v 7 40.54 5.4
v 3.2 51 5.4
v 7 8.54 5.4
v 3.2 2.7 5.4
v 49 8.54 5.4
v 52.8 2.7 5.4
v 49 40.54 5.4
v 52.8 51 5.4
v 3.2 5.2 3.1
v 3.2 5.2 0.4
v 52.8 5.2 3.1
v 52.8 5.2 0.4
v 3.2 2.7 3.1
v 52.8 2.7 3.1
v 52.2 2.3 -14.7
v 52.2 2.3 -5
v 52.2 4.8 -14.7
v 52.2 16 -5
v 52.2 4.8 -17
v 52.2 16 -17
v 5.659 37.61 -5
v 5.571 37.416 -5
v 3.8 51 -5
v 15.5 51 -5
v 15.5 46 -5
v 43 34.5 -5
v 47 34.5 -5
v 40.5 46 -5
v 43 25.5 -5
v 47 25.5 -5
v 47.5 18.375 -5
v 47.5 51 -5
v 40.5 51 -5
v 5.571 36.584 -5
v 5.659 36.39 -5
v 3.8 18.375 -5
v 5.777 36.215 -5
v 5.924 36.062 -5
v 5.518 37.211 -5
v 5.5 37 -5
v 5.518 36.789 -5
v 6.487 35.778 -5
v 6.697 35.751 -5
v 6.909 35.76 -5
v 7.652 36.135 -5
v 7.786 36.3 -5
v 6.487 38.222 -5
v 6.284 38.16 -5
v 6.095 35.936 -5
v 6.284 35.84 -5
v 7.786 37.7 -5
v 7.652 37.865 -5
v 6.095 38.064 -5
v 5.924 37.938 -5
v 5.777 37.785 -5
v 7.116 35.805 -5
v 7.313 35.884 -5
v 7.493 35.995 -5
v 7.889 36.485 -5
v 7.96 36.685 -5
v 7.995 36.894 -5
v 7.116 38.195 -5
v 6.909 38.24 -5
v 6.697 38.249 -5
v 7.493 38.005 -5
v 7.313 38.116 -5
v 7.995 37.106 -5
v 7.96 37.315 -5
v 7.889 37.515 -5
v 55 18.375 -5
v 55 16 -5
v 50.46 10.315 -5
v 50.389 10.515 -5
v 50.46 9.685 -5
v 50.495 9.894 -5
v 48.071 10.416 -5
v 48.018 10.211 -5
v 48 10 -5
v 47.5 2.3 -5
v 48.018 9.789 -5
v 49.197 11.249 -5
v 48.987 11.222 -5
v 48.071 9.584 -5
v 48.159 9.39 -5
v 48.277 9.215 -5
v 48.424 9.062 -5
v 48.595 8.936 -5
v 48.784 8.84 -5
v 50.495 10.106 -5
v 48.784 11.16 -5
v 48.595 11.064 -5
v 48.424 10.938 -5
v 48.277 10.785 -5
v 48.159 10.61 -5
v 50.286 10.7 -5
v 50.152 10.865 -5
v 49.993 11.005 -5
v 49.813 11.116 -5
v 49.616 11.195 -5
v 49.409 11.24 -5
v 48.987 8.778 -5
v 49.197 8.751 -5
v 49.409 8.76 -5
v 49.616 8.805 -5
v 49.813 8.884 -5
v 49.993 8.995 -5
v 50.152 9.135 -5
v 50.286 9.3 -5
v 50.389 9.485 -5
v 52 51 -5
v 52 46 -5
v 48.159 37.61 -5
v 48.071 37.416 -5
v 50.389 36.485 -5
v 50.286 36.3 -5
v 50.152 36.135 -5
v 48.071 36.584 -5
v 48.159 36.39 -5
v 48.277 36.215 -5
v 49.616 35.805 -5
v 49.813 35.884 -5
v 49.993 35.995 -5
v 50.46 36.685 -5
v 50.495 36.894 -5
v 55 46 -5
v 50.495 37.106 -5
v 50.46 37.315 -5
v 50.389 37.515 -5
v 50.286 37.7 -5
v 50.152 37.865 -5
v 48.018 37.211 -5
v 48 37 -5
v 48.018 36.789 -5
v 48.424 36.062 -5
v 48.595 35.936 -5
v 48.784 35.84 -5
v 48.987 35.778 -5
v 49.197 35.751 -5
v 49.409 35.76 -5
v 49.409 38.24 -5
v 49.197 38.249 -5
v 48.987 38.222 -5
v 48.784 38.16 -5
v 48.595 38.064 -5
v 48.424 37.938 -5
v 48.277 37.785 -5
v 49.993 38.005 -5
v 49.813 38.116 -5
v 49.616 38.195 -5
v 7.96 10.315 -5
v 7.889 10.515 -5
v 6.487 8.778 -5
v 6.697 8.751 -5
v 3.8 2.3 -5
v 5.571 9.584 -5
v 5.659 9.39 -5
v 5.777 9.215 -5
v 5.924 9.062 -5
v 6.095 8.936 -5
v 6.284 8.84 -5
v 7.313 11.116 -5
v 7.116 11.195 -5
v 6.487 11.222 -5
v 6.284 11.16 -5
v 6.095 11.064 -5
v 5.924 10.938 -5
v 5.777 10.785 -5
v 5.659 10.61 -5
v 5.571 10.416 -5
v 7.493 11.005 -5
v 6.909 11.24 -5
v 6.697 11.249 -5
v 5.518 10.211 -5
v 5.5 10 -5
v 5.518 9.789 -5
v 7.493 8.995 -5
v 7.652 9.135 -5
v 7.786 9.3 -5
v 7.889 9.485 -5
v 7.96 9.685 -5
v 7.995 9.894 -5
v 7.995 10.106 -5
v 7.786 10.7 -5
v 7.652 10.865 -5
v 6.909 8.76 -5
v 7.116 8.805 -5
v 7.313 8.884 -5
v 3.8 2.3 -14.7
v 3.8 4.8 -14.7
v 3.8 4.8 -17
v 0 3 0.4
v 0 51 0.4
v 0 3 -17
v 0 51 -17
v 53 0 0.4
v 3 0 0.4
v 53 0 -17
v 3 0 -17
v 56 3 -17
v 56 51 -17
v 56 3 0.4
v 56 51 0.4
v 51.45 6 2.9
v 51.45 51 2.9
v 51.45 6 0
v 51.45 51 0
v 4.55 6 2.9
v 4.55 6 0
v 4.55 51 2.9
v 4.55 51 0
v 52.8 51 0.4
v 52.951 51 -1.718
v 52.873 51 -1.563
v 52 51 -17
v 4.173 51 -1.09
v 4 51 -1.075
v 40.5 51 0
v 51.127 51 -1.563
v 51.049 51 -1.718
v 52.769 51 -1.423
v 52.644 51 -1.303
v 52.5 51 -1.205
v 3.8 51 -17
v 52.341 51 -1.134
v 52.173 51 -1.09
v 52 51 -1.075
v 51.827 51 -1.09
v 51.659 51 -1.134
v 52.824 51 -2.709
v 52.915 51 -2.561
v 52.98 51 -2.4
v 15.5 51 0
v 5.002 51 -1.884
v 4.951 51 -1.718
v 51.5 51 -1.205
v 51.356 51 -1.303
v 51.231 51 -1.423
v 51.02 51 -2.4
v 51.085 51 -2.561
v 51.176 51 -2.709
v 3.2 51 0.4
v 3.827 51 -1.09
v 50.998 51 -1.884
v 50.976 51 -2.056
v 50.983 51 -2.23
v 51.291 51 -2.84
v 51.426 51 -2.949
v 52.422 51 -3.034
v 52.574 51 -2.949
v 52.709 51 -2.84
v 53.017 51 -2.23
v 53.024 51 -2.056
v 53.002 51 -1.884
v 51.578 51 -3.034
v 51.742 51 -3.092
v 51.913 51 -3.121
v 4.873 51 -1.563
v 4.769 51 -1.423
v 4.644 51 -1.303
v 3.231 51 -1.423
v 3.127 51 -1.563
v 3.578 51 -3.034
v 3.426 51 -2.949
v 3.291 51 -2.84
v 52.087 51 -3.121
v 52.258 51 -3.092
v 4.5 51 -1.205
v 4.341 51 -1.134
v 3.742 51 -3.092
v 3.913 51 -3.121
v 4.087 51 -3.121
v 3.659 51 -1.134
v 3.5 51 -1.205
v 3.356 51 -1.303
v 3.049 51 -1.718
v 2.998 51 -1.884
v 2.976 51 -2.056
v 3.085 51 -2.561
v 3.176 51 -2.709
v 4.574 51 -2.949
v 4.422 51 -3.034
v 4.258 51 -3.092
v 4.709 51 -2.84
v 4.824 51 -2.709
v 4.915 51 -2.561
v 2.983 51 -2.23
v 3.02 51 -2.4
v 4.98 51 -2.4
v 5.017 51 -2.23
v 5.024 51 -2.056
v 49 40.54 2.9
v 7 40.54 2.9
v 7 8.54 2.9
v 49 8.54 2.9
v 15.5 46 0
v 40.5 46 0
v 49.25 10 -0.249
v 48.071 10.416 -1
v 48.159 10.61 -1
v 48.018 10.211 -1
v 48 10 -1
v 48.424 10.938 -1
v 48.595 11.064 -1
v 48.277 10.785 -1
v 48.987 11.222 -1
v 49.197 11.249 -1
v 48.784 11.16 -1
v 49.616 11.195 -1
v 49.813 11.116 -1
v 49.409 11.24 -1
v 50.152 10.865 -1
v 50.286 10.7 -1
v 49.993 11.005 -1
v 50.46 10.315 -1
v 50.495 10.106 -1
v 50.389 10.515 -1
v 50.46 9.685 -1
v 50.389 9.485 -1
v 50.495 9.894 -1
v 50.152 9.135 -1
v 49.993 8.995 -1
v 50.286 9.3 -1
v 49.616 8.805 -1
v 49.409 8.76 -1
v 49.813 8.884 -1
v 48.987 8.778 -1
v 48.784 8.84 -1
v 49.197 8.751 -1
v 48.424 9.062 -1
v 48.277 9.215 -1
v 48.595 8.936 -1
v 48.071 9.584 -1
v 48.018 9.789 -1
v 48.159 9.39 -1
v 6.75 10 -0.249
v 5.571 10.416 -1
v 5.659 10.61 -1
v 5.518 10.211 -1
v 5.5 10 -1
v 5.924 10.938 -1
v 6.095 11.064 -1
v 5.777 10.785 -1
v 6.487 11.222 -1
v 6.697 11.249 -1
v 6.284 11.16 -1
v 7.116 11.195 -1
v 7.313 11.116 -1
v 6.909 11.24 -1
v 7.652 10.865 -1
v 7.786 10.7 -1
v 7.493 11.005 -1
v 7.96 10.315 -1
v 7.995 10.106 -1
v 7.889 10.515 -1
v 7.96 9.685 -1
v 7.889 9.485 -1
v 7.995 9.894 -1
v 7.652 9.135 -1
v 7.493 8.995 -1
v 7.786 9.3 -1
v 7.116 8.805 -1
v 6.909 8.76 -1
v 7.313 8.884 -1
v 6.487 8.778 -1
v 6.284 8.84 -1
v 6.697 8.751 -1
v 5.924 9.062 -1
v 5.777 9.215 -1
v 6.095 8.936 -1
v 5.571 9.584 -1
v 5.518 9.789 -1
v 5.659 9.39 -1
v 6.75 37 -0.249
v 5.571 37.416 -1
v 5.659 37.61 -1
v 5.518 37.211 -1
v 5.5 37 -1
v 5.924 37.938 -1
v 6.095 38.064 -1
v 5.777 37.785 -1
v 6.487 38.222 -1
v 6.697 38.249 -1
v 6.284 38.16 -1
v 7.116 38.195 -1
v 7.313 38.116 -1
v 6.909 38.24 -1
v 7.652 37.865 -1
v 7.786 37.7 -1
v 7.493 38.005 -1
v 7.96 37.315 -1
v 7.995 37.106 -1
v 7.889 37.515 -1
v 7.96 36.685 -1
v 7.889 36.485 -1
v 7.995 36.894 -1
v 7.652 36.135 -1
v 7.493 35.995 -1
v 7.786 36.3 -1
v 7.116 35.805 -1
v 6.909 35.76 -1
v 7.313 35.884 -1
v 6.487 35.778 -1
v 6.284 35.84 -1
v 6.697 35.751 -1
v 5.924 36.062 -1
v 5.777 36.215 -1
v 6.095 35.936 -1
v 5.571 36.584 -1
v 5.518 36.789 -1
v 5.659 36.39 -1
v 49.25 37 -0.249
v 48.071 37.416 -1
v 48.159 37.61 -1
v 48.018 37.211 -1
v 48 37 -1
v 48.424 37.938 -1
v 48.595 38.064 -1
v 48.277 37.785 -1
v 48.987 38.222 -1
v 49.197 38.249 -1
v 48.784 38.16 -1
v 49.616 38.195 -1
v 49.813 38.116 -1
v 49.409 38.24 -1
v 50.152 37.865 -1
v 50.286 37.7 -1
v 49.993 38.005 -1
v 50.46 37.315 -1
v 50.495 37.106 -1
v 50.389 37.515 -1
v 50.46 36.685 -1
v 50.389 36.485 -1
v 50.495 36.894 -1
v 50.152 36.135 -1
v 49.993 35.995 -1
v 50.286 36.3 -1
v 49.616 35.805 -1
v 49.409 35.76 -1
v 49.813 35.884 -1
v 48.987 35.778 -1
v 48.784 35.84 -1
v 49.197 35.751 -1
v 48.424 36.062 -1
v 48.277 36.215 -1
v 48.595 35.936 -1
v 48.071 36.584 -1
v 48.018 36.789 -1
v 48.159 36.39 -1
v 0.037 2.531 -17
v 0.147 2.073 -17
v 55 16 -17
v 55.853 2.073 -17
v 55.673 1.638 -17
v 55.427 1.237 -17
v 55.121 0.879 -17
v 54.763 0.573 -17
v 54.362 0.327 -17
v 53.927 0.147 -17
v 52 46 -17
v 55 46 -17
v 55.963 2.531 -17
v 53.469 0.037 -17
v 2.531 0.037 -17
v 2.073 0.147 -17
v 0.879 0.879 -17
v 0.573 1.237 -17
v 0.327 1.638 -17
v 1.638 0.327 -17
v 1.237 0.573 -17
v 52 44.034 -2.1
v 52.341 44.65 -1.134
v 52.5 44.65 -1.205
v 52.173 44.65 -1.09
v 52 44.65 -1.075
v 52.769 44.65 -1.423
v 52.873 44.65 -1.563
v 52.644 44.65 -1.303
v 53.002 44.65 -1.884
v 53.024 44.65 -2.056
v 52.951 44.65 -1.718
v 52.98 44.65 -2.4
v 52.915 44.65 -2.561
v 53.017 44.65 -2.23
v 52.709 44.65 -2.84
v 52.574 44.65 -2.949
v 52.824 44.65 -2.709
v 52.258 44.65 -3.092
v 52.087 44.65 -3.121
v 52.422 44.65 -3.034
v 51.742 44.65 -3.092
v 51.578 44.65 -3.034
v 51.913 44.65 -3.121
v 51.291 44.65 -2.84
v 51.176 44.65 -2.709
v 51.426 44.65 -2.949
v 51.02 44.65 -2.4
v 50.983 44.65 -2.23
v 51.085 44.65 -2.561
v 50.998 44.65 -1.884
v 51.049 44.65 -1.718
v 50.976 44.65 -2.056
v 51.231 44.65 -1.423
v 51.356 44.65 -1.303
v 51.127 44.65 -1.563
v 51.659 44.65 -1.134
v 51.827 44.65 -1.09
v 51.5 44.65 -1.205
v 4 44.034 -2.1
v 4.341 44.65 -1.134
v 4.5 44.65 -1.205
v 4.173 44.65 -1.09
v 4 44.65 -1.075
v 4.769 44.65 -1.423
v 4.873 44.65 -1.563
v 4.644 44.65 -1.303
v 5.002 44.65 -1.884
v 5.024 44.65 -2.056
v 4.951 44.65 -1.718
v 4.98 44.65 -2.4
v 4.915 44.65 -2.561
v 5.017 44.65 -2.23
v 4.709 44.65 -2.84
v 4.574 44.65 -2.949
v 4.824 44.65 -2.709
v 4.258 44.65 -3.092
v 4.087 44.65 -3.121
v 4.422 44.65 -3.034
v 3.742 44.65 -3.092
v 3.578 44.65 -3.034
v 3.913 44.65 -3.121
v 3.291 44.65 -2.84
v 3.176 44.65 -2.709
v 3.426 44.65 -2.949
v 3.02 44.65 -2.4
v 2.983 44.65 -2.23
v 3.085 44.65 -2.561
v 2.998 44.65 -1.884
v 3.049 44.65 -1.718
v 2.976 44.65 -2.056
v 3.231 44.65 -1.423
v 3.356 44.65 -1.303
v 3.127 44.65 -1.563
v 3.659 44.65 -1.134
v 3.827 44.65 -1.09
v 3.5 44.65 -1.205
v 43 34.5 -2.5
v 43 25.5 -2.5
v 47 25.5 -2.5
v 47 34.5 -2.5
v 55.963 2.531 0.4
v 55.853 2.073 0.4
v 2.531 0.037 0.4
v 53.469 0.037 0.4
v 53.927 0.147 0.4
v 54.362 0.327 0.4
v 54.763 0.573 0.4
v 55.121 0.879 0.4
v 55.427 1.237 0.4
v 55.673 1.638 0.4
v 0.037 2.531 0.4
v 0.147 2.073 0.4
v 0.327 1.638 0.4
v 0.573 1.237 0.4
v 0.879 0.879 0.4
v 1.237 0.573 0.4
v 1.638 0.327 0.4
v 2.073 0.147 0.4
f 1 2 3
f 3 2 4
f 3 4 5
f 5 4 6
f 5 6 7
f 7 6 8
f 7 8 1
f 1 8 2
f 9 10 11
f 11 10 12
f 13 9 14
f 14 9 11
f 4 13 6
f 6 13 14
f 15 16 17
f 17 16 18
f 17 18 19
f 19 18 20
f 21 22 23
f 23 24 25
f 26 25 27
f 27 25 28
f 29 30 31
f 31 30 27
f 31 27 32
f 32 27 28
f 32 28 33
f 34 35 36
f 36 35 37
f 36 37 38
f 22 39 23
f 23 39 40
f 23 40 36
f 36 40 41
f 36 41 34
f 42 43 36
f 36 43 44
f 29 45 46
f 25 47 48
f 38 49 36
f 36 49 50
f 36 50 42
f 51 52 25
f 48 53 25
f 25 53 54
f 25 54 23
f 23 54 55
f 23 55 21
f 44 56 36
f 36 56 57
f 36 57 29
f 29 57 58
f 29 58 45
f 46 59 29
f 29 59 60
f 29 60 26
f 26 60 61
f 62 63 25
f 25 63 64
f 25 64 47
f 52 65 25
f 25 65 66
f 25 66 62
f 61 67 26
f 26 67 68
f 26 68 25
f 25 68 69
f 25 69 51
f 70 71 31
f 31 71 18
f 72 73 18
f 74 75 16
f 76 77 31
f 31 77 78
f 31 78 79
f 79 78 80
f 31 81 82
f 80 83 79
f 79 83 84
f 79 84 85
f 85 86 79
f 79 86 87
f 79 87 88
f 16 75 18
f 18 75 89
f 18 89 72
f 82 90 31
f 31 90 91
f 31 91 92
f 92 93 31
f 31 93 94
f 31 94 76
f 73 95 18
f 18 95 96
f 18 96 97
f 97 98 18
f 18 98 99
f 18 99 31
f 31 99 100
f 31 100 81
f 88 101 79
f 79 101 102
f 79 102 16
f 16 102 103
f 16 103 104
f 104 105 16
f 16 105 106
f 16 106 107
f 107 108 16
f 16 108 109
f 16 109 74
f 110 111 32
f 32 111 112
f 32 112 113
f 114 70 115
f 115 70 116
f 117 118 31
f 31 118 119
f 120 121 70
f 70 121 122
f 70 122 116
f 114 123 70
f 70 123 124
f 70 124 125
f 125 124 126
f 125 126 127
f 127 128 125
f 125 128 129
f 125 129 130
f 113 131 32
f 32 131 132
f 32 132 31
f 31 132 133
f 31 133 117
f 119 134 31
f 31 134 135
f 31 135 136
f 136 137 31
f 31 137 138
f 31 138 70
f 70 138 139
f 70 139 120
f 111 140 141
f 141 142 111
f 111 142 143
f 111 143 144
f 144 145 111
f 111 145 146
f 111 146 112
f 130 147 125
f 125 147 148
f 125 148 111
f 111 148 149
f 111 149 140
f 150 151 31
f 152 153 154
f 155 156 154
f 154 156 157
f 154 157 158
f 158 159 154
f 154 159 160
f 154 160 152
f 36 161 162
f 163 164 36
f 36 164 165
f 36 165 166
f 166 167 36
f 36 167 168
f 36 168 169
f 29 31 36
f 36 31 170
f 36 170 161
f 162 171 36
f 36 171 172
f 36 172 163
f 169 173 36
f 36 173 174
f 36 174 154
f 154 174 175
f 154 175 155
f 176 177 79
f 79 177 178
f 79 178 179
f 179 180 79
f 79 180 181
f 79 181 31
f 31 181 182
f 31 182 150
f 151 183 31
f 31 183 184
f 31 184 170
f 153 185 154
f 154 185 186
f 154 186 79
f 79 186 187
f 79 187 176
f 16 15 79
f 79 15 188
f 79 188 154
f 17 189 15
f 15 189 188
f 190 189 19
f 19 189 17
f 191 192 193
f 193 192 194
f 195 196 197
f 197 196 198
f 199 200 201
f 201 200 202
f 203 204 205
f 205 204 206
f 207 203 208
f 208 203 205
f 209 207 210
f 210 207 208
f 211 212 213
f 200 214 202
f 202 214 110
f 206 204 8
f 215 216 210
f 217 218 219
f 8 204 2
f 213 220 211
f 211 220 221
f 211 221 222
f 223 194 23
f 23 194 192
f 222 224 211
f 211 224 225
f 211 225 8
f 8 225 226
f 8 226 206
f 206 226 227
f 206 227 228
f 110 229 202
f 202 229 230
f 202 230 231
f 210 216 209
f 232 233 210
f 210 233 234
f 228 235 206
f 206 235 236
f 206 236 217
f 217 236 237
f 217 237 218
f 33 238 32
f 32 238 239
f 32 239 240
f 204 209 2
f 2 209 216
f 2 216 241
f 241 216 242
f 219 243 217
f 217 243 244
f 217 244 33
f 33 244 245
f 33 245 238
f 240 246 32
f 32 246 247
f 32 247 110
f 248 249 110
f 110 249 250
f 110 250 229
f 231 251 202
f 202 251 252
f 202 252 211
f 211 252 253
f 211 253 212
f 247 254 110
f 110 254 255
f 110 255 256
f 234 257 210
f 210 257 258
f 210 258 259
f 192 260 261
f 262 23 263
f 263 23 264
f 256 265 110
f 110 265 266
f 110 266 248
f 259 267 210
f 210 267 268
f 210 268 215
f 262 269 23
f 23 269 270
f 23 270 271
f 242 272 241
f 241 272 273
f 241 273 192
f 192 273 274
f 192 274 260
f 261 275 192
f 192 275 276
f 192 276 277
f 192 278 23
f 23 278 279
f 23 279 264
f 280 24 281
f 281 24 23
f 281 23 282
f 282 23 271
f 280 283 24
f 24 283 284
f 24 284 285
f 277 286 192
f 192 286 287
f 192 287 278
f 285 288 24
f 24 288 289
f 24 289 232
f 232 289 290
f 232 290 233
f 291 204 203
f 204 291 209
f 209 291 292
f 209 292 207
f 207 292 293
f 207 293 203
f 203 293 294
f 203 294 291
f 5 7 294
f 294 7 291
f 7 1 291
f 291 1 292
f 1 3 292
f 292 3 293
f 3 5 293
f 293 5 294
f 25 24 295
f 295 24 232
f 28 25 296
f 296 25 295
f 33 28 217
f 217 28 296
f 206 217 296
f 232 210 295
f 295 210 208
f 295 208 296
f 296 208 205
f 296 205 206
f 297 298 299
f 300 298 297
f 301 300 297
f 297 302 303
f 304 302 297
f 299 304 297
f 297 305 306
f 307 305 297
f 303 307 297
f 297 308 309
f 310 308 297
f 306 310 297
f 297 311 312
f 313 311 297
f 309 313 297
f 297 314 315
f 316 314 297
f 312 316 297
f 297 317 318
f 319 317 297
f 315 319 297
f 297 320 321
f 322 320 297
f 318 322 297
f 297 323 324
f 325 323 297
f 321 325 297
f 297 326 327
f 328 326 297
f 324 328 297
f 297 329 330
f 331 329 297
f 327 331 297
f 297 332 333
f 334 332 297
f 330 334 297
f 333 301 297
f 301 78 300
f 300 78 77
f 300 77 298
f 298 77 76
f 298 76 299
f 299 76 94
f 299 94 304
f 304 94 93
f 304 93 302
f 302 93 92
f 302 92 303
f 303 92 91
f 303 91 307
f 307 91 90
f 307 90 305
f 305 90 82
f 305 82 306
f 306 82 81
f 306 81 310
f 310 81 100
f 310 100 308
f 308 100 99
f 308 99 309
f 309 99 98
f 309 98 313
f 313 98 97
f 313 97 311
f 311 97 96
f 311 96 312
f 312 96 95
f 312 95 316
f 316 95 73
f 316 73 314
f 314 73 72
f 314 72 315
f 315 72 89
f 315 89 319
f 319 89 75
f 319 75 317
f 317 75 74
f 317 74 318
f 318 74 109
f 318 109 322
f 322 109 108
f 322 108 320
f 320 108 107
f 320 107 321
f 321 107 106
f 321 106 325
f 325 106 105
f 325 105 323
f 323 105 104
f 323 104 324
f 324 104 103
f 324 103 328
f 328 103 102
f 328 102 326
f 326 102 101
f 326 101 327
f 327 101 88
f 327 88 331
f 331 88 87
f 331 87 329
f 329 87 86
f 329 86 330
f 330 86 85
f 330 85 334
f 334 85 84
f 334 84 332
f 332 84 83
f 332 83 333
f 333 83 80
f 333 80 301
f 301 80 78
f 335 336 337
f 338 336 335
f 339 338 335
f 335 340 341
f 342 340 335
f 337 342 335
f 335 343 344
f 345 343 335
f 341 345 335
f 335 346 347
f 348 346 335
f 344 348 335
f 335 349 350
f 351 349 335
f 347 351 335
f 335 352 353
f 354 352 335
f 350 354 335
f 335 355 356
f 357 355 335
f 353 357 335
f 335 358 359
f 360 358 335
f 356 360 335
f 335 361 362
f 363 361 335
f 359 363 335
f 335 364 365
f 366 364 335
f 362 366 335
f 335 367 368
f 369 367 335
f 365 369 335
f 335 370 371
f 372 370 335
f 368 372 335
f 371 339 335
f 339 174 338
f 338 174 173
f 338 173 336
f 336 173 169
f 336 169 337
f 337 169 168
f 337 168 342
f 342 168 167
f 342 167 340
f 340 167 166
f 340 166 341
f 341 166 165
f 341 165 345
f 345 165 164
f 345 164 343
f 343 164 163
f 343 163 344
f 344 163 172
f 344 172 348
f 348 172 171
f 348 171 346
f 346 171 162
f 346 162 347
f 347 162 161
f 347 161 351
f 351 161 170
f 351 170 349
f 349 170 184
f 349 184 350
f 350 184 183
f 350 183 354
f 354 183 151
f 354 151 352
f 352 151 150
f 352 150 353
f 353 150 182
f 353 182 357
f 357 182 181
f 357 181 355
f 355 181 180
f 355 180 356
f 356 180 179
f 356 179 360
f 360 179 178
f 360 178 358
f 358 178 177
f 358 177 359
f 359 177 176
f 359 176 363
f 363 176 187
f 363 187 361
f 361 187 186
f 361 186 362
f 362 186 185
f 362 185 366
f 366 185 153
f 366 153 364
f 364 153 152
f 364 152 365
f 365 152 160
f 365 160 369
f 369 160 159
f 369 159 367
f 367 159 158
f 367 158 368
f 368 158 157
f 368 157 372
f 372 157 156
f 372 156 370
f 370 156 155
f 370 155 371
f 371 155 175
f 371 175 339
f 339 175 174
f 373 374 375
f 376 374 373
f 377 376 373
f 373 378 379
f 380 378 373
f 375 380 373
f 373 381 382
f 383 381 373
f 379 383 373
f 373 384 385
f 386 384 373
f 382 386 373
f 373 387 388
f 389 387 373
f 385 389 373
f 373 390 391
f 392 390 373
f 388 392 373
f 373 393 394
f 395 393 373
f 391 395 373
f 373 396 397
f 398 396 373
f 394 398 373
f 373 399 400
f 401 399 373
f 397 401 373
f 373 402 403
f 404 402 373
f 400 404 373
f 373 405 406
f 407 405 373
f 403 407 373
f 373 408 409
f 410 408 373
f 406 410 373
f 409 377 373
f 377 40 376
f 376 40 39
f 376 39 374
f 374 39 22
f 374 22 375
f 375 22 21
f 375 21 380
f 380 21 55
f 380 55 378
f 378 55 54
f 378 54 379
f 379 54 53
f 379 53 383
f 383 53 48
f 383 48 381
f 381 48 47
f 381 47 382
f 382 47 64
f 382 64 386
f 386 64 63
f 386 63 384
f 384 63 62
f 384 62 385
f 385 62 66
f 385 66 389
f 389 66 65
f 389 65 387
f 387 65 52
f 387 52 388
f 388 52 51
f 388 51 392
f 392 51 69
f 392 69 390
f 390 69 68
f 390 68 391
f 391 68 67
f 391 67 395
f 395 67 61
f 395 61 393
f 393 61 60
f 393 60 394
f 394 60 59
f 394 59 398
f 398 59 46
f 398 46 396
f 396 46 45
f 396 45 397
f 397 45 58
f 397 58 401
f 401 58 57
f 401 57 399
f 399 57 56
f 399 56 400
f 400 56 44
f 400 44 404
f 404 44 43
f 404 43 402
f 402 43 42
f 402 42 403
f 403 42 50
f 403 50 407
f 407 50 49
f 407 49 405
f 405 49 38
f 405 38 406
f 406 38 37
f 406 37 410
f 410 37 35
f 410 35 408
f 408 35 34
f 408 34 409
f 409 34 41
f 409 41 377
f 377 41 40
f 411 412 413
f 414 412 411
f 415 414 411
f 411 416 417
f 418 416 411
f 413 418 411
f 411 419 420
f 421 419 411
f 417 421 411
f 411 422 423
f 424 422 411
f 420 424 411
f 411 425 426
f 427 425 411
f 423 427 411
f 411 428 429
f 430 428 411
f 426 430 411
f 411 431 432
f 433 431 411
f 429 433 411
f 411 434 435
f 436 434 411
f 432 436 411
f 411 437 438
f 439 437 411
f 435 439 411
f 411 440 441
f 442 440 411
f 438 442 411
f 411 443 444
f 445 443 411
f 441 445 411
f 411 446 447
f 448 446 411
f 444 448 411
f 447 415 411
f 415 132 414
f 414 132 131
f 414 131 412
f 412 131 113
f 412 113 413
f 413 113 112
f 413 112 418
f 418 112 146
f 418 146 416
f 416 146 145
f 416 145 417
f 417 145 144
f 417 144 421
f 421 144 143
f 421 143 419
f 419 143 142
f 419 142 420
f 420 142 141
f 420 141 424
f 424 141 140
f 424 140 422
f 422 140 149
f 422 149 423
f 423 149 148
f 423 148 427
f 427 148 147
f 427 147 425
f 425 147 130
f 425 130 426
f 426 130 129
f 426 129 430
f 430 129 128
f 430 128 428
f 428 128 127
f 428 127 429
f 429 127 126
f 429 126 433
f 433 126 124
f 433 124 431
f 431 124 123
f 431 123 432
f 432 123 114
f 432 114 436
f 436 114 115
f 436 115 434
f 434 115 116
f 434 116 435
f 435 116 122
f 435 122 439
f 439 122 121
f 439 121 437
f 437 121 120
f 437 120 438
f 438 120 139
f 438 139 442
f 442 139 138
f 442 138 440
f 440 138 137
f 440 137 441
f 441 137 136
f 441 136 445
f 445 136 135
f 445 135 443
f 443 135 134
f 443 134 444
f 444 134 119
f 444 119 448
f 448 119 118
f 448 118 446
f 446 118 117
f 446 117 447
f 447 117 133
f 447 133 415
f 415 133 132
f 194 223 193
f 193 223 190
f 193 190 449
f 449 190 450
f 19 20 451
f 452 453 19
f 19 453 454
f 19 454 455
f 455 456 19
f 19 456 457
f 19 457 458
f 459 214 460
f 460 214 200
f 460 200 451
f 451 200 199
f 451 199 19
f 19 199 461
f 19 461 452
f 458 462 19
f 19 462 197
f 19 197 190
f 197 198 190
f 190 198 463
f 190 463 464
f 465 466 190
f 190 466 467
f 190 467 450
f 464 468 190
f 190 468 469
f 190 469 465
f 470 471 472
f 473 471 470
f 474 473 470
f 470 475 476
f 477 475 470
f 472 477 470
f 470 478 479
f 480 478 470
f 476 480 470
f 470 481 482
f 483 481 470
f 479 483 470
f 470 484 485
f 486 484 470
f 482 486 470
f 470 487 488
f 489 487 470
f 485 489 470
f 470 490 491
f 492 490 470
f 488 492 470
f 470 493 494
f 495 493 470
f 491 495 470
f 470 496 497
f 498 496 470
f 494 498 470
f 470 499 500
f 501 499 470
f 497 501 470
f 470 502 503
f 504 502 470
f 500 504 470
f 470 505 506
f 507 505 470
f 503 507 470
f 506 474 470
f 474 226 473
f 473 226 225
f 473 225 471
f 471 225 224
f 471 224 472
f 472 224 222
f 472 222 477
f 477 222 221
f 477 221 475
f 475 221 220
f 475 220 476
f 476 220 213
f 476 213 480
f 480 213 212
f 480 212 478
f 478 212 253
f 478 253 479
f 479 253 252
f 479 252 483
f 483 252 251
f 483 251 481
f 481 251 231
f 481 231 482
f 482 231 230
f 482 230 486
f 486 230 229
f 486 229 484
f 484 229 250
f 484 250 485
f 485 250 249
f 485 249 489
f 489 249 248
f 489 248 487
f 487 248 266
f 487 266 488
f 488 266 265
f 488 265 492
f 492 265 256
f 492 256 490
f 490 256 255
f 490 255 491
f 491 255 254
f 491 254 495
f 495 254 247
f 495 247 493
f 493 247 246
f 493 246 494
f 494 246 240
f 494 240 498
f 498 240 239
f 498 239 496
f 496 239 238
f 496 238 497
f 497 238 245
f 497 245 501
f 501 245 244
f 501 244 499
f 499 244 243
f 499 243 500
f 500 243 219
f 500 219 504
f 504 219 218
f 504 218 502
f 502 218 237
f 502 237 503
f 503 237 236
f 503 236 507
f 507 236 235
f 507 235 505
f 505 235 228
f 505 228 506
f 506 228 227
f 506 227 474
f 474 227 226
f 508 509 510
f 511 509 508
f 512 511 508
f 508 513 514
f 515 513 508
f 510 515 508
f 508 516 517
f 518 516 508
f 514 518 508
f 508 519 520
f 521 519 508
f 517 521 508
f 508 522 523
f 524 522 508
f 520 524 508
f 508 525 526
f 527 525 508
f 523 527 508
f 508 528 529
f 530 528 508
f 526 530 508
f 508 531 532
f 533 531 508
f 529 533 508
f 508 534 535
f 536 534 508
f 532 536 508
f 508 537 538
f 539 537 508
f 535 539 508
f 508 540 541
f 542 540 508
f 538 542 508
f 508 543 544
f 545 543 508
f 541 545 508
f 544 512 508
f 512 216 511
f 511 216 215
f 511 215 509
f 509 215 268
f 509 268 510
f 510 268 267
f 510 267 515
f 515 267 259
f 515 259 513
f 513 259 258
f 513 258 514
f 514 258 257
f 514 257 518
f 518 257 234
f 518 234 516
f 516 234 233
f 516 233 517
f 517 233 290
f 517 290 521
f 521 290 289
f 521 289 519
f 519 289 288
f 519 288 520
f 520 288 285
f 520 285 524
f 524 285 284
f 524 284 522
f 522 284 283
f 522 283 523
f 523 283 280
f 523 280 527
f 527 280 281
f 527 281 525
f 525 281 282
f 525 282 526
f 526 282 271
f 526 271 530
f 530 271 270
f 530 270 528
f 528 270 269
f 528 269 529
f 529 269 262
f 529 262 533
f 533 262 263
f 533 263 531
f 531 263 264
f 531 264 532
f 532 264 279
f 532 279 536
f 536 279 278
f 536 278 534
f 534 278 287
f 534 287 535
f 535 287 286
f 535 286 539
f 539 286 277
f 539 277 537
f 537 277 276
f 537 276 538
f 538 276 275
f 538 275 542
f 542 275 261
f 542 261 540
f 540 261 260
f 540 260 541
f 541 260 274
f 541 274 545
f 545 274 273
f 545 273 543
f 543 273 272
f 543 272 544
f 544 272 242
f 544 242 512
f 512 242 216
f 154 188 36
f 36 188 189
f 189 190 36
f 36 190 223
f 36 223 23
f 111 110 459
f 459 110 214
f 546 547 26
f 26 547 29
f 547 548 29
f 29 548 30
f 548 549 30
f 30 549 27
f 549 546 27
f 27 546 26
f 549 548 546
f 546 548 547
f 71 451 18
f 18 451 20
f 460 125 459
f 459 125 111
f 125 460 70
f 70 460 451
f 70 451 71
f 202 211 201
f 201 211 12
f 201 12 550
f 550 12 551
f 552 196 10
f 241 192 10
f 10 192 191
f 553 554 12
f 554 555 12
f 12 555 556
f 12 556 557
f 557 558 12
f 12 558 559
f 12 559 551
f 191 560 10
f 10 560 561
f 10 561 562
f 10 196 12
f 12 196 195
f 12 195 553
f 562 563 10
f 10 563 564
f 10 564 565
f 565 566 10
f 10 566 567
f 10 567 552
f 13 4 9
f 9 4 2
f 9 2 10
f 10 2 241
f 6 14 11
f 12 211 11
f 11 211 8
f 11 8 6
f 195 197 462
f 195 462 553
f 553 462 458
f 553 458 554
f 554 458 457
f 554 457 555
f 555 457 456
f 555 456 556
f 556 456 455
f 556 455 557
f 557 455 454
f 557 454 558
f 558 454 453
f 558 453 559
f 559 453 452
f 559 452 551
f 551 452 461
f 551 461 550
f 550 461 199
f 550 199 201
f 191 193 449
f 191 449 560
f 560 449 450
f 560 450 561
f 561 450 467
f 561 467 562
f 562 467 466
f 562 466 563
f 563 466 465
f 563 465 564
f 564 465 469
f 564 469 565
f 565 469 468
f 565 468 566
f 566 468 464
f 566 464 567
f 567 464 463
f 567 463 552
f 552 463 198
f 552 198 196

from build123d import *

# Parameters (mm, degrees)
BOSS_EXTRUDE1_OUTLINE_W      = 4.95
BOSS_EXTRUDE1_OUTLINE_H      = 2.9
BOSS_EXTRUDE1_DEPTH          = 51
BOSS_EXTRUDE1_2_OUTLINE_W    = 46.1
BOSS_EXTRUDE1_2_OUTLINE_H    = 2.9
BOSS_EXTRUDE1_2_DEPTH        = 6
SKETCH2_W                    = 56
SKETCH2_H                    = 51
SKETCH2_W_2                  = 42
SKETCH2_H_2                  = 32
BOSS_EXTRUDE2_DEPTH          = 2.5
BOSS_EXTRUDE3_DEPTH          = 5
M3X0_5_TAPPED_HOLE1_D        = 2.5
M3X0_5_TAPPED_HOLE1_DEPTH    = 4
M3X0_5_TAPPED_HOLE1_TIP      = 0.751075774
SKETCH9_W                    = 56
SKETCH9_H                    = 2.5
BOSS_EXTRUDE4_DEPTH          = 5
SKETCH9_3_W                  = 56
SKETCH9_3_H                  = 9.5
BOSS_EXTRUDE5_DEPTH          = 2.5
M2_5X0_45_TAPPED_HOLE1_D     = 2.05
M2_5X0_45_TAPPED_HOLE1_DEPTH = 6.35
M2_5X0_45_TAPPED_HOLE1_TIP   = 0.615882135
BOSS_EXTRUDE6_REACH          = 78.688
SKETCH12_W                   = 4
SKETCH12_H                   = 51
SKETCH13_W                   = 4
SKETCH13_H                   = 9
CUT_EXTRUDE1_DEPTH           = 2.5
SKETCH14_W                   = 12
SKETCH14_H                   = 30
CUT_EXTRUDE2_DEPTH           = 3
CUT_EXTRUDE3_DEPTH           = 78.62731478
SKETCH17_W                   = 5
SKETCH17_H                   = 51
CUT_EXTRUDE4_DEPTH           = 3
SKETCH18_W                   = 5
SKETCH18_H                   = 51
CUT_EXTRUDE5_DEPTH           = 3
FILLET1_R                    = 3
MOVE_FACE1_BY                = 0.2
MOVE_FACE1_2_BY              = 0.2
MOVE_FACE1_3_BY              = 0.2
MOVE_FACE1_4_BY              = 0.2
MOVE_FACE1_5_BY              = 0.2
MOVE_FACE1_6_BY              = 0.2
MOVE_FACE1_7_BY              = 0.2
MOVE_FACE1_8_BY              = 0.2
MOVE_FACE1_9_BY              = 0.2
MOVE_FACE1_10_BY             = 0.2
MOVE_START                   = 4.55
MOVE_FACE2_OUTLINE_W         = 45
MOVE_FACE2_OUTLINE_H         = 2.9
MOVE_FACE2_DEPTH             = 46.9


# Read off the part's stored shape, not the designer's step: Boss-Extrude1, Move Face2
with BuildPart() as part:
    # Boss-Extrude1 outline → Boss-Extrude1 (new body)
    with BuildSketch(Plane(origin=(0, 0, 0), x_dir=(1, 0, 0), z_dir=(0, 1, 0))):
        with Locations((2.475, -1.45)):
            Rectangle(BOSS_EXTRUDE1_OUTLINE_W, BOSS_EXTRUDE1_OUTLINE_H)
        with Locations((53.525, -1.45)):
            Rectangle(BOSS_EXTRUDE1_OUTLINE_W, BOSS_EXTRUDE1_OUTLINE_H)
    extrude(amount=BOSS_EXTRUDE1_DEPTH)

    # Boss-Extrude1 2 outline → Boss-Extrude1 2 (add)
    with BuildSketch(Plane(origin=(0, 0, 0), x_dir=(1, 0, 0), z_dir=(0, 1, 0))):
        with Locations((28, -1.45)):
            Rectangle(BOSS_EXTRUDE1_2_OUTLINE_W, BOSS_EXTRUDE1_2_OUTLINE_H)
    extrude(amount=BOSS_EXTRUDE1_2_DEPTH)

    # Sketch2 → Boss-Extrude2 (add)
    with BuildSketch(Plane.XY.offset(2.9)):
        with Locations((28, 25.5)):
            Rectangle(SKETCH2_W, SKETCH2_H)
        with Locations((28, 24.54)):
            Rectangle(SKETCH2_W_2, SKETCH2_H_2, mode=Mode.SUBTRACT)
    extrude(amount=BOSS_EXTRUDE2_DEPTH)

    # Sketch3 → Boss-Extrude3 (add)
    with BuildSketch(Plane(origin=(0, 0, 0), x_dir=(-1, 0, 0), z_dir=(0, 0, -1))):
        Polygon((-56, 51), (-40.5, 51), (-40.5, 46), (-15.5, 46), (-15.5, 51), (0, 51), (0, 0), (-56, 0), align=None)
    extrude(amount=BOSS_EXTRUDE3_DEPTH)

    # M3x0.5 Tapped Hole1
    with Locations(Plane(origin=(0, 0, -5), x_dir=(-1, 0, 0), z_dir=(0, 0, -1))):
        with Locations((-49.25, 37), (-6.75, 37), (-6.75, 10), (-49.25, 10)):
            Hole(M3X0_5_TAPPED_HOLE1_D / 2, depth=M3X0_5_TAPPED_HOLE1_DEPTH)
            with Locations((0, 0, -(M3X0_5_TAPPED_HOLE1_DEPTH + M3X0_5_TAPPED_HOLE1_TIP / 2))):  # 118° drill point
                Cone(0, M3X0_5_TAPPED_HOLE1_D / 2, M3X0_5_TAPPED_HOLE1_TIP, mode=Mode.SUBTRACT)



with BuildPart() as body_2:
    # Sketch9 → Boss-Extrude4 (new body)
    with BuildSketch(Plane.XZ):
        with Locations((28, -15.75)):
            Rectangle(SKETCH9_W, SKETCH9_H)
    extrude(amount=-BOSS_EXTRUDE4_DEPTH)


with BuildPart() as part_1:
    add(part.part)

    add(body_2.part)  # Boss-Extrude5 merges body 2
    # Sketch9<3> → Boss-Extrude5 (add)
    with BuildSketch(Plane.XZ):
        with Locations((28, -9.75)):
            Rectangle(SKETCH9_3_W, SKETCH9_3_H)
    extrude(amount=-BOSS_EXTRUDE5_DEPTH)

    # M2.5x0.45 Tapped Hole1
    with Locations(Plane(origin=(0, 51, 0), x_dir=(1, 0, 0), z_dir=(0, 1, 0))):
        with Locations((4, 2.1), (52, 2.1)):
            Hole(M2_5X0_45_TAPPED_HOLE1_D / 2, depth=M2_5X0_45_TAPPED_HOLE1_DEPTH)
            with Locations((0, 0, -(M2_5X0_45_TAPPED_HOLE1_DEPTH + M2_5X0_45_TAPPED_HOLE1_TIP / 2))):  # 118° drill point
                Cone(0, M2_5X0_45_TAPPED_HOLE1_D / 2, M2_5X0_45_TAPPED_HOLE1_TIP, mode=Mode.SUBTRACT)

    # Boss-Extrude6: up to this face of the body (flat: up to its plane)
    boss_extrude6_end = Plane(part_1.part.faces().sort_by_distance((28, 2.5, -17))[0])
    # Sketch12 → Boss-Extrude6 (add, up to the picked face)
    with BuildSketch(Plane(origin=(0, 0, -5), x_dir=(-1, 0, 0), z_dir=(0, 0, -1)), mode=Mode.PRIVATE) as boss_extrude6_sk1:
        with Locations((-2, 25.5)):
            Rectangle(SKETCH12_W, SKETCH12_H)
    boss_extrude6_tool1 = split(extrude(boss_extrude6_sk1.sketch, amount=BOSS_EXTRUDE6_REACH, mode=Mode.PRIVATE), bisect_by=boss_extrude6_end, keep=Keep.BOTH, mode=Mode.PRIVATE)
    # Sketch12 → Boss-Extrude6 (add, up to the picked face)
    with BuildSketch(Plane(origin=(0, 0, -5), x_dir=(-1, 0, 0), z_dir=(0, 0, -1)), mode=Mode.PRIVATE) as boss_extrude6_sk2:
        with Locations((-54, 25.5)):
            Rectangle(SKETCH12_W, SKETCH12_H)
    boss_extrude6_tool2 = split(extrude(boss_extrude6_sk2.sketch, amount=BOSS_EXTRUDE6_REACH, mode=Mode.PRIVATE), bisect_by=boss_extrude6_end, keep=Keep.BOTH, mode=Mode.PRIVATE)
    add(boss_extrude6_tool1.solids().sort_by(Axis((2, 25.5, -5), (0, 0, -1)))[0])
    add(boss_extrude6_tool2.solids().sort_by(Axis((54, 25.5, -5), (0, 0, -1)))[0])

    # Sketch13 → Cut-Extrude1 (cut)
    with BuildSketch(Plane(origin=(0, 0, -5), x_dir=(-1, 0, 0), z_dir=(0, 0, -1))):
        with Locations((-45, 30)):
            Rectangle(SKETCH13_W, SKETCH13_H)
    extrude(amount=-CUT_EXTRUDE1_DEPTH, mode=Mode.SUBTRACT)

    # Sketch14 → Cut-Extrude2 (cut)
    with BuildSketch(Plane.ZY.offset(-52)):
        with Locations((-11, 31)):
            Rectangle(SKETCH14_W, SKETCH14_H)
    extrude(amount=-CUT_EXTRUDE2_DEPTH, mode=Mode.SUBTRACT)

    # Sketch15 → Cut-Extrude3 (cut, through all)
    with BuildSketch(Plane.ZY):
        Polygon((5.4, 0), (0.4, 0), (0.4, 5), (2.9, 5), (2.9, 2.5), (5.4, 2.5), align=None)
    extrude(amount=-CUT_EXTRUDE3_DEPTH, mode=Mode.SUBTRACT)

    # Sketch17 → Cut-Extrude4 (cut)
    with BuildSketch(Plane.ZY):
        with Locations((2.9, 25.5)):
            Rectangle(SKETCH17_W, SKETCH17_H)
    extrude(amount=-CUT_EXTRUDE4_DEPTH, mode=Mode.SUBTRACT)

    # Sketch18 → Cut-Extrude5 (cut)
    with BuildSketch(Plane(origin=(56, 0, 0), x_dir=(0, 0, -1), z_dir=(1, 0, 0))):
        with Locations((-2.9, 25.5)):
            Rectangle(SKETCH18_W, SKETCH18_H)
    extrude(amount=-CUT_EXTRUDE5_DEPTH, mode=Mode.SUBTRACT)

    # Fillet1
    fillet1_edges = [part_1.edges().sort_by_distance(p)[0] for p in [
        (56, 0, -8.3),
        (0, 0, -8.3),
    ]]
    fillet(fillet1_edges, radius=FILLET1_R)

    # Move Face1: a face moved inward by 0.2
    extrude(part_1.faces().sort_by_distance((28, 3.75, 2.9))[0], amount=MOVE_FACE1_BY, dir=(0, 0, 1), mode=Mode.SUBTRACT)

    # Move Face1 2: a face moved inward by 0.2
    extrude(part_1.faces().sort_by_distance((28, 2.5, 4.15))[0], amount=MOVE_FACE1_2_BY, dir=(0, 1, 0), mode=Mode.SUBTRACT)

    # Move Face1 3: a face moved inward by 0.2
    extrude(part_1.faces().sort_by_distance((28, 5, 1.65))[0], amount=MOVE_FACE1_3_BY, dir=(0, 1, 0), mode=Mode.SUBTRACT)

    # Move Face1 4: a face moved inward by 0.2
    extrude(part_1.faces().sort_by_distance((3, 27.358465608, 2.933068783))[0], amount=MOVE_FACE1_4_BY, dir=(1, 0, 0), mode=Mode.SUBTRACT)

    # Move Face1 5: a face moved inward by 0.2
    extrude(part_1.faces().sort_by_distance((53, 27.358465608, 2.933068783))[0], amount=MOVE_FACE1_5_BY, dir=(-1, 0, 0), mode=Mode.SUBTRACT)

    # Move Face1 6: a face moved inward by 0.2
    extrude(part_1.faces().sort_by_distance((28, 2.5, -9.75))[0], amount=MOVE_FACE1_6_BY, dir=(0, -1, 0), mode=Mode.SUBTRACT)

    # Move Face1 7: a face moved inward by 0.2
    extrude(part_1.faces().sort_by_distance((28, 3.75, -14.5))[0], amount=MOVE_FACE1_7_BY, dir=(0, 0, -1), mode=Mode.SUBTRACT)

    # Move Face1 8: a face moved inward by 0.2
    extrude(part_1.faces().sort_by_distance((28, 5, -15.75))[0], amount=MOVE_FACE1_8_BY, dir=(0, -1, 0), mode=Mode.SUBTRACT)

    # Move Face1 9: a face moved inward by 0.2
    extrude(part_1.faces().sort_by_distance((4, 26.999674338, -10.948436822))[0], amount=MOVE_FACE1_9_BY, dir=(-1, 0, 0), mode=Mode.SUBTRACT)

    # Move Face1 10: a face moved inward by 0.2
    extrude(part_1.faces().sort_by_distance((52, 9.47070626, -10.809390048))[0], amount=MOVE_FACE1_10_BY, dir=(1, 0, 0), mode=Mode.SUBTRACT)

    # Move Face2 outline → Move Face2 (cut)
    with BuildSketch(Plane.YZ.offset(MOVE_START)):
        with Locations((28.5, 1.45)):
            Rectangle(MOVE_FACE2_OUTLINE_W, MOVE_FACE2_OUTLINE_H)
    extrude(amount=MOVE_FACE2_DEPTH, mode=Mode.SUBTRACT)


solid = part_1.part
